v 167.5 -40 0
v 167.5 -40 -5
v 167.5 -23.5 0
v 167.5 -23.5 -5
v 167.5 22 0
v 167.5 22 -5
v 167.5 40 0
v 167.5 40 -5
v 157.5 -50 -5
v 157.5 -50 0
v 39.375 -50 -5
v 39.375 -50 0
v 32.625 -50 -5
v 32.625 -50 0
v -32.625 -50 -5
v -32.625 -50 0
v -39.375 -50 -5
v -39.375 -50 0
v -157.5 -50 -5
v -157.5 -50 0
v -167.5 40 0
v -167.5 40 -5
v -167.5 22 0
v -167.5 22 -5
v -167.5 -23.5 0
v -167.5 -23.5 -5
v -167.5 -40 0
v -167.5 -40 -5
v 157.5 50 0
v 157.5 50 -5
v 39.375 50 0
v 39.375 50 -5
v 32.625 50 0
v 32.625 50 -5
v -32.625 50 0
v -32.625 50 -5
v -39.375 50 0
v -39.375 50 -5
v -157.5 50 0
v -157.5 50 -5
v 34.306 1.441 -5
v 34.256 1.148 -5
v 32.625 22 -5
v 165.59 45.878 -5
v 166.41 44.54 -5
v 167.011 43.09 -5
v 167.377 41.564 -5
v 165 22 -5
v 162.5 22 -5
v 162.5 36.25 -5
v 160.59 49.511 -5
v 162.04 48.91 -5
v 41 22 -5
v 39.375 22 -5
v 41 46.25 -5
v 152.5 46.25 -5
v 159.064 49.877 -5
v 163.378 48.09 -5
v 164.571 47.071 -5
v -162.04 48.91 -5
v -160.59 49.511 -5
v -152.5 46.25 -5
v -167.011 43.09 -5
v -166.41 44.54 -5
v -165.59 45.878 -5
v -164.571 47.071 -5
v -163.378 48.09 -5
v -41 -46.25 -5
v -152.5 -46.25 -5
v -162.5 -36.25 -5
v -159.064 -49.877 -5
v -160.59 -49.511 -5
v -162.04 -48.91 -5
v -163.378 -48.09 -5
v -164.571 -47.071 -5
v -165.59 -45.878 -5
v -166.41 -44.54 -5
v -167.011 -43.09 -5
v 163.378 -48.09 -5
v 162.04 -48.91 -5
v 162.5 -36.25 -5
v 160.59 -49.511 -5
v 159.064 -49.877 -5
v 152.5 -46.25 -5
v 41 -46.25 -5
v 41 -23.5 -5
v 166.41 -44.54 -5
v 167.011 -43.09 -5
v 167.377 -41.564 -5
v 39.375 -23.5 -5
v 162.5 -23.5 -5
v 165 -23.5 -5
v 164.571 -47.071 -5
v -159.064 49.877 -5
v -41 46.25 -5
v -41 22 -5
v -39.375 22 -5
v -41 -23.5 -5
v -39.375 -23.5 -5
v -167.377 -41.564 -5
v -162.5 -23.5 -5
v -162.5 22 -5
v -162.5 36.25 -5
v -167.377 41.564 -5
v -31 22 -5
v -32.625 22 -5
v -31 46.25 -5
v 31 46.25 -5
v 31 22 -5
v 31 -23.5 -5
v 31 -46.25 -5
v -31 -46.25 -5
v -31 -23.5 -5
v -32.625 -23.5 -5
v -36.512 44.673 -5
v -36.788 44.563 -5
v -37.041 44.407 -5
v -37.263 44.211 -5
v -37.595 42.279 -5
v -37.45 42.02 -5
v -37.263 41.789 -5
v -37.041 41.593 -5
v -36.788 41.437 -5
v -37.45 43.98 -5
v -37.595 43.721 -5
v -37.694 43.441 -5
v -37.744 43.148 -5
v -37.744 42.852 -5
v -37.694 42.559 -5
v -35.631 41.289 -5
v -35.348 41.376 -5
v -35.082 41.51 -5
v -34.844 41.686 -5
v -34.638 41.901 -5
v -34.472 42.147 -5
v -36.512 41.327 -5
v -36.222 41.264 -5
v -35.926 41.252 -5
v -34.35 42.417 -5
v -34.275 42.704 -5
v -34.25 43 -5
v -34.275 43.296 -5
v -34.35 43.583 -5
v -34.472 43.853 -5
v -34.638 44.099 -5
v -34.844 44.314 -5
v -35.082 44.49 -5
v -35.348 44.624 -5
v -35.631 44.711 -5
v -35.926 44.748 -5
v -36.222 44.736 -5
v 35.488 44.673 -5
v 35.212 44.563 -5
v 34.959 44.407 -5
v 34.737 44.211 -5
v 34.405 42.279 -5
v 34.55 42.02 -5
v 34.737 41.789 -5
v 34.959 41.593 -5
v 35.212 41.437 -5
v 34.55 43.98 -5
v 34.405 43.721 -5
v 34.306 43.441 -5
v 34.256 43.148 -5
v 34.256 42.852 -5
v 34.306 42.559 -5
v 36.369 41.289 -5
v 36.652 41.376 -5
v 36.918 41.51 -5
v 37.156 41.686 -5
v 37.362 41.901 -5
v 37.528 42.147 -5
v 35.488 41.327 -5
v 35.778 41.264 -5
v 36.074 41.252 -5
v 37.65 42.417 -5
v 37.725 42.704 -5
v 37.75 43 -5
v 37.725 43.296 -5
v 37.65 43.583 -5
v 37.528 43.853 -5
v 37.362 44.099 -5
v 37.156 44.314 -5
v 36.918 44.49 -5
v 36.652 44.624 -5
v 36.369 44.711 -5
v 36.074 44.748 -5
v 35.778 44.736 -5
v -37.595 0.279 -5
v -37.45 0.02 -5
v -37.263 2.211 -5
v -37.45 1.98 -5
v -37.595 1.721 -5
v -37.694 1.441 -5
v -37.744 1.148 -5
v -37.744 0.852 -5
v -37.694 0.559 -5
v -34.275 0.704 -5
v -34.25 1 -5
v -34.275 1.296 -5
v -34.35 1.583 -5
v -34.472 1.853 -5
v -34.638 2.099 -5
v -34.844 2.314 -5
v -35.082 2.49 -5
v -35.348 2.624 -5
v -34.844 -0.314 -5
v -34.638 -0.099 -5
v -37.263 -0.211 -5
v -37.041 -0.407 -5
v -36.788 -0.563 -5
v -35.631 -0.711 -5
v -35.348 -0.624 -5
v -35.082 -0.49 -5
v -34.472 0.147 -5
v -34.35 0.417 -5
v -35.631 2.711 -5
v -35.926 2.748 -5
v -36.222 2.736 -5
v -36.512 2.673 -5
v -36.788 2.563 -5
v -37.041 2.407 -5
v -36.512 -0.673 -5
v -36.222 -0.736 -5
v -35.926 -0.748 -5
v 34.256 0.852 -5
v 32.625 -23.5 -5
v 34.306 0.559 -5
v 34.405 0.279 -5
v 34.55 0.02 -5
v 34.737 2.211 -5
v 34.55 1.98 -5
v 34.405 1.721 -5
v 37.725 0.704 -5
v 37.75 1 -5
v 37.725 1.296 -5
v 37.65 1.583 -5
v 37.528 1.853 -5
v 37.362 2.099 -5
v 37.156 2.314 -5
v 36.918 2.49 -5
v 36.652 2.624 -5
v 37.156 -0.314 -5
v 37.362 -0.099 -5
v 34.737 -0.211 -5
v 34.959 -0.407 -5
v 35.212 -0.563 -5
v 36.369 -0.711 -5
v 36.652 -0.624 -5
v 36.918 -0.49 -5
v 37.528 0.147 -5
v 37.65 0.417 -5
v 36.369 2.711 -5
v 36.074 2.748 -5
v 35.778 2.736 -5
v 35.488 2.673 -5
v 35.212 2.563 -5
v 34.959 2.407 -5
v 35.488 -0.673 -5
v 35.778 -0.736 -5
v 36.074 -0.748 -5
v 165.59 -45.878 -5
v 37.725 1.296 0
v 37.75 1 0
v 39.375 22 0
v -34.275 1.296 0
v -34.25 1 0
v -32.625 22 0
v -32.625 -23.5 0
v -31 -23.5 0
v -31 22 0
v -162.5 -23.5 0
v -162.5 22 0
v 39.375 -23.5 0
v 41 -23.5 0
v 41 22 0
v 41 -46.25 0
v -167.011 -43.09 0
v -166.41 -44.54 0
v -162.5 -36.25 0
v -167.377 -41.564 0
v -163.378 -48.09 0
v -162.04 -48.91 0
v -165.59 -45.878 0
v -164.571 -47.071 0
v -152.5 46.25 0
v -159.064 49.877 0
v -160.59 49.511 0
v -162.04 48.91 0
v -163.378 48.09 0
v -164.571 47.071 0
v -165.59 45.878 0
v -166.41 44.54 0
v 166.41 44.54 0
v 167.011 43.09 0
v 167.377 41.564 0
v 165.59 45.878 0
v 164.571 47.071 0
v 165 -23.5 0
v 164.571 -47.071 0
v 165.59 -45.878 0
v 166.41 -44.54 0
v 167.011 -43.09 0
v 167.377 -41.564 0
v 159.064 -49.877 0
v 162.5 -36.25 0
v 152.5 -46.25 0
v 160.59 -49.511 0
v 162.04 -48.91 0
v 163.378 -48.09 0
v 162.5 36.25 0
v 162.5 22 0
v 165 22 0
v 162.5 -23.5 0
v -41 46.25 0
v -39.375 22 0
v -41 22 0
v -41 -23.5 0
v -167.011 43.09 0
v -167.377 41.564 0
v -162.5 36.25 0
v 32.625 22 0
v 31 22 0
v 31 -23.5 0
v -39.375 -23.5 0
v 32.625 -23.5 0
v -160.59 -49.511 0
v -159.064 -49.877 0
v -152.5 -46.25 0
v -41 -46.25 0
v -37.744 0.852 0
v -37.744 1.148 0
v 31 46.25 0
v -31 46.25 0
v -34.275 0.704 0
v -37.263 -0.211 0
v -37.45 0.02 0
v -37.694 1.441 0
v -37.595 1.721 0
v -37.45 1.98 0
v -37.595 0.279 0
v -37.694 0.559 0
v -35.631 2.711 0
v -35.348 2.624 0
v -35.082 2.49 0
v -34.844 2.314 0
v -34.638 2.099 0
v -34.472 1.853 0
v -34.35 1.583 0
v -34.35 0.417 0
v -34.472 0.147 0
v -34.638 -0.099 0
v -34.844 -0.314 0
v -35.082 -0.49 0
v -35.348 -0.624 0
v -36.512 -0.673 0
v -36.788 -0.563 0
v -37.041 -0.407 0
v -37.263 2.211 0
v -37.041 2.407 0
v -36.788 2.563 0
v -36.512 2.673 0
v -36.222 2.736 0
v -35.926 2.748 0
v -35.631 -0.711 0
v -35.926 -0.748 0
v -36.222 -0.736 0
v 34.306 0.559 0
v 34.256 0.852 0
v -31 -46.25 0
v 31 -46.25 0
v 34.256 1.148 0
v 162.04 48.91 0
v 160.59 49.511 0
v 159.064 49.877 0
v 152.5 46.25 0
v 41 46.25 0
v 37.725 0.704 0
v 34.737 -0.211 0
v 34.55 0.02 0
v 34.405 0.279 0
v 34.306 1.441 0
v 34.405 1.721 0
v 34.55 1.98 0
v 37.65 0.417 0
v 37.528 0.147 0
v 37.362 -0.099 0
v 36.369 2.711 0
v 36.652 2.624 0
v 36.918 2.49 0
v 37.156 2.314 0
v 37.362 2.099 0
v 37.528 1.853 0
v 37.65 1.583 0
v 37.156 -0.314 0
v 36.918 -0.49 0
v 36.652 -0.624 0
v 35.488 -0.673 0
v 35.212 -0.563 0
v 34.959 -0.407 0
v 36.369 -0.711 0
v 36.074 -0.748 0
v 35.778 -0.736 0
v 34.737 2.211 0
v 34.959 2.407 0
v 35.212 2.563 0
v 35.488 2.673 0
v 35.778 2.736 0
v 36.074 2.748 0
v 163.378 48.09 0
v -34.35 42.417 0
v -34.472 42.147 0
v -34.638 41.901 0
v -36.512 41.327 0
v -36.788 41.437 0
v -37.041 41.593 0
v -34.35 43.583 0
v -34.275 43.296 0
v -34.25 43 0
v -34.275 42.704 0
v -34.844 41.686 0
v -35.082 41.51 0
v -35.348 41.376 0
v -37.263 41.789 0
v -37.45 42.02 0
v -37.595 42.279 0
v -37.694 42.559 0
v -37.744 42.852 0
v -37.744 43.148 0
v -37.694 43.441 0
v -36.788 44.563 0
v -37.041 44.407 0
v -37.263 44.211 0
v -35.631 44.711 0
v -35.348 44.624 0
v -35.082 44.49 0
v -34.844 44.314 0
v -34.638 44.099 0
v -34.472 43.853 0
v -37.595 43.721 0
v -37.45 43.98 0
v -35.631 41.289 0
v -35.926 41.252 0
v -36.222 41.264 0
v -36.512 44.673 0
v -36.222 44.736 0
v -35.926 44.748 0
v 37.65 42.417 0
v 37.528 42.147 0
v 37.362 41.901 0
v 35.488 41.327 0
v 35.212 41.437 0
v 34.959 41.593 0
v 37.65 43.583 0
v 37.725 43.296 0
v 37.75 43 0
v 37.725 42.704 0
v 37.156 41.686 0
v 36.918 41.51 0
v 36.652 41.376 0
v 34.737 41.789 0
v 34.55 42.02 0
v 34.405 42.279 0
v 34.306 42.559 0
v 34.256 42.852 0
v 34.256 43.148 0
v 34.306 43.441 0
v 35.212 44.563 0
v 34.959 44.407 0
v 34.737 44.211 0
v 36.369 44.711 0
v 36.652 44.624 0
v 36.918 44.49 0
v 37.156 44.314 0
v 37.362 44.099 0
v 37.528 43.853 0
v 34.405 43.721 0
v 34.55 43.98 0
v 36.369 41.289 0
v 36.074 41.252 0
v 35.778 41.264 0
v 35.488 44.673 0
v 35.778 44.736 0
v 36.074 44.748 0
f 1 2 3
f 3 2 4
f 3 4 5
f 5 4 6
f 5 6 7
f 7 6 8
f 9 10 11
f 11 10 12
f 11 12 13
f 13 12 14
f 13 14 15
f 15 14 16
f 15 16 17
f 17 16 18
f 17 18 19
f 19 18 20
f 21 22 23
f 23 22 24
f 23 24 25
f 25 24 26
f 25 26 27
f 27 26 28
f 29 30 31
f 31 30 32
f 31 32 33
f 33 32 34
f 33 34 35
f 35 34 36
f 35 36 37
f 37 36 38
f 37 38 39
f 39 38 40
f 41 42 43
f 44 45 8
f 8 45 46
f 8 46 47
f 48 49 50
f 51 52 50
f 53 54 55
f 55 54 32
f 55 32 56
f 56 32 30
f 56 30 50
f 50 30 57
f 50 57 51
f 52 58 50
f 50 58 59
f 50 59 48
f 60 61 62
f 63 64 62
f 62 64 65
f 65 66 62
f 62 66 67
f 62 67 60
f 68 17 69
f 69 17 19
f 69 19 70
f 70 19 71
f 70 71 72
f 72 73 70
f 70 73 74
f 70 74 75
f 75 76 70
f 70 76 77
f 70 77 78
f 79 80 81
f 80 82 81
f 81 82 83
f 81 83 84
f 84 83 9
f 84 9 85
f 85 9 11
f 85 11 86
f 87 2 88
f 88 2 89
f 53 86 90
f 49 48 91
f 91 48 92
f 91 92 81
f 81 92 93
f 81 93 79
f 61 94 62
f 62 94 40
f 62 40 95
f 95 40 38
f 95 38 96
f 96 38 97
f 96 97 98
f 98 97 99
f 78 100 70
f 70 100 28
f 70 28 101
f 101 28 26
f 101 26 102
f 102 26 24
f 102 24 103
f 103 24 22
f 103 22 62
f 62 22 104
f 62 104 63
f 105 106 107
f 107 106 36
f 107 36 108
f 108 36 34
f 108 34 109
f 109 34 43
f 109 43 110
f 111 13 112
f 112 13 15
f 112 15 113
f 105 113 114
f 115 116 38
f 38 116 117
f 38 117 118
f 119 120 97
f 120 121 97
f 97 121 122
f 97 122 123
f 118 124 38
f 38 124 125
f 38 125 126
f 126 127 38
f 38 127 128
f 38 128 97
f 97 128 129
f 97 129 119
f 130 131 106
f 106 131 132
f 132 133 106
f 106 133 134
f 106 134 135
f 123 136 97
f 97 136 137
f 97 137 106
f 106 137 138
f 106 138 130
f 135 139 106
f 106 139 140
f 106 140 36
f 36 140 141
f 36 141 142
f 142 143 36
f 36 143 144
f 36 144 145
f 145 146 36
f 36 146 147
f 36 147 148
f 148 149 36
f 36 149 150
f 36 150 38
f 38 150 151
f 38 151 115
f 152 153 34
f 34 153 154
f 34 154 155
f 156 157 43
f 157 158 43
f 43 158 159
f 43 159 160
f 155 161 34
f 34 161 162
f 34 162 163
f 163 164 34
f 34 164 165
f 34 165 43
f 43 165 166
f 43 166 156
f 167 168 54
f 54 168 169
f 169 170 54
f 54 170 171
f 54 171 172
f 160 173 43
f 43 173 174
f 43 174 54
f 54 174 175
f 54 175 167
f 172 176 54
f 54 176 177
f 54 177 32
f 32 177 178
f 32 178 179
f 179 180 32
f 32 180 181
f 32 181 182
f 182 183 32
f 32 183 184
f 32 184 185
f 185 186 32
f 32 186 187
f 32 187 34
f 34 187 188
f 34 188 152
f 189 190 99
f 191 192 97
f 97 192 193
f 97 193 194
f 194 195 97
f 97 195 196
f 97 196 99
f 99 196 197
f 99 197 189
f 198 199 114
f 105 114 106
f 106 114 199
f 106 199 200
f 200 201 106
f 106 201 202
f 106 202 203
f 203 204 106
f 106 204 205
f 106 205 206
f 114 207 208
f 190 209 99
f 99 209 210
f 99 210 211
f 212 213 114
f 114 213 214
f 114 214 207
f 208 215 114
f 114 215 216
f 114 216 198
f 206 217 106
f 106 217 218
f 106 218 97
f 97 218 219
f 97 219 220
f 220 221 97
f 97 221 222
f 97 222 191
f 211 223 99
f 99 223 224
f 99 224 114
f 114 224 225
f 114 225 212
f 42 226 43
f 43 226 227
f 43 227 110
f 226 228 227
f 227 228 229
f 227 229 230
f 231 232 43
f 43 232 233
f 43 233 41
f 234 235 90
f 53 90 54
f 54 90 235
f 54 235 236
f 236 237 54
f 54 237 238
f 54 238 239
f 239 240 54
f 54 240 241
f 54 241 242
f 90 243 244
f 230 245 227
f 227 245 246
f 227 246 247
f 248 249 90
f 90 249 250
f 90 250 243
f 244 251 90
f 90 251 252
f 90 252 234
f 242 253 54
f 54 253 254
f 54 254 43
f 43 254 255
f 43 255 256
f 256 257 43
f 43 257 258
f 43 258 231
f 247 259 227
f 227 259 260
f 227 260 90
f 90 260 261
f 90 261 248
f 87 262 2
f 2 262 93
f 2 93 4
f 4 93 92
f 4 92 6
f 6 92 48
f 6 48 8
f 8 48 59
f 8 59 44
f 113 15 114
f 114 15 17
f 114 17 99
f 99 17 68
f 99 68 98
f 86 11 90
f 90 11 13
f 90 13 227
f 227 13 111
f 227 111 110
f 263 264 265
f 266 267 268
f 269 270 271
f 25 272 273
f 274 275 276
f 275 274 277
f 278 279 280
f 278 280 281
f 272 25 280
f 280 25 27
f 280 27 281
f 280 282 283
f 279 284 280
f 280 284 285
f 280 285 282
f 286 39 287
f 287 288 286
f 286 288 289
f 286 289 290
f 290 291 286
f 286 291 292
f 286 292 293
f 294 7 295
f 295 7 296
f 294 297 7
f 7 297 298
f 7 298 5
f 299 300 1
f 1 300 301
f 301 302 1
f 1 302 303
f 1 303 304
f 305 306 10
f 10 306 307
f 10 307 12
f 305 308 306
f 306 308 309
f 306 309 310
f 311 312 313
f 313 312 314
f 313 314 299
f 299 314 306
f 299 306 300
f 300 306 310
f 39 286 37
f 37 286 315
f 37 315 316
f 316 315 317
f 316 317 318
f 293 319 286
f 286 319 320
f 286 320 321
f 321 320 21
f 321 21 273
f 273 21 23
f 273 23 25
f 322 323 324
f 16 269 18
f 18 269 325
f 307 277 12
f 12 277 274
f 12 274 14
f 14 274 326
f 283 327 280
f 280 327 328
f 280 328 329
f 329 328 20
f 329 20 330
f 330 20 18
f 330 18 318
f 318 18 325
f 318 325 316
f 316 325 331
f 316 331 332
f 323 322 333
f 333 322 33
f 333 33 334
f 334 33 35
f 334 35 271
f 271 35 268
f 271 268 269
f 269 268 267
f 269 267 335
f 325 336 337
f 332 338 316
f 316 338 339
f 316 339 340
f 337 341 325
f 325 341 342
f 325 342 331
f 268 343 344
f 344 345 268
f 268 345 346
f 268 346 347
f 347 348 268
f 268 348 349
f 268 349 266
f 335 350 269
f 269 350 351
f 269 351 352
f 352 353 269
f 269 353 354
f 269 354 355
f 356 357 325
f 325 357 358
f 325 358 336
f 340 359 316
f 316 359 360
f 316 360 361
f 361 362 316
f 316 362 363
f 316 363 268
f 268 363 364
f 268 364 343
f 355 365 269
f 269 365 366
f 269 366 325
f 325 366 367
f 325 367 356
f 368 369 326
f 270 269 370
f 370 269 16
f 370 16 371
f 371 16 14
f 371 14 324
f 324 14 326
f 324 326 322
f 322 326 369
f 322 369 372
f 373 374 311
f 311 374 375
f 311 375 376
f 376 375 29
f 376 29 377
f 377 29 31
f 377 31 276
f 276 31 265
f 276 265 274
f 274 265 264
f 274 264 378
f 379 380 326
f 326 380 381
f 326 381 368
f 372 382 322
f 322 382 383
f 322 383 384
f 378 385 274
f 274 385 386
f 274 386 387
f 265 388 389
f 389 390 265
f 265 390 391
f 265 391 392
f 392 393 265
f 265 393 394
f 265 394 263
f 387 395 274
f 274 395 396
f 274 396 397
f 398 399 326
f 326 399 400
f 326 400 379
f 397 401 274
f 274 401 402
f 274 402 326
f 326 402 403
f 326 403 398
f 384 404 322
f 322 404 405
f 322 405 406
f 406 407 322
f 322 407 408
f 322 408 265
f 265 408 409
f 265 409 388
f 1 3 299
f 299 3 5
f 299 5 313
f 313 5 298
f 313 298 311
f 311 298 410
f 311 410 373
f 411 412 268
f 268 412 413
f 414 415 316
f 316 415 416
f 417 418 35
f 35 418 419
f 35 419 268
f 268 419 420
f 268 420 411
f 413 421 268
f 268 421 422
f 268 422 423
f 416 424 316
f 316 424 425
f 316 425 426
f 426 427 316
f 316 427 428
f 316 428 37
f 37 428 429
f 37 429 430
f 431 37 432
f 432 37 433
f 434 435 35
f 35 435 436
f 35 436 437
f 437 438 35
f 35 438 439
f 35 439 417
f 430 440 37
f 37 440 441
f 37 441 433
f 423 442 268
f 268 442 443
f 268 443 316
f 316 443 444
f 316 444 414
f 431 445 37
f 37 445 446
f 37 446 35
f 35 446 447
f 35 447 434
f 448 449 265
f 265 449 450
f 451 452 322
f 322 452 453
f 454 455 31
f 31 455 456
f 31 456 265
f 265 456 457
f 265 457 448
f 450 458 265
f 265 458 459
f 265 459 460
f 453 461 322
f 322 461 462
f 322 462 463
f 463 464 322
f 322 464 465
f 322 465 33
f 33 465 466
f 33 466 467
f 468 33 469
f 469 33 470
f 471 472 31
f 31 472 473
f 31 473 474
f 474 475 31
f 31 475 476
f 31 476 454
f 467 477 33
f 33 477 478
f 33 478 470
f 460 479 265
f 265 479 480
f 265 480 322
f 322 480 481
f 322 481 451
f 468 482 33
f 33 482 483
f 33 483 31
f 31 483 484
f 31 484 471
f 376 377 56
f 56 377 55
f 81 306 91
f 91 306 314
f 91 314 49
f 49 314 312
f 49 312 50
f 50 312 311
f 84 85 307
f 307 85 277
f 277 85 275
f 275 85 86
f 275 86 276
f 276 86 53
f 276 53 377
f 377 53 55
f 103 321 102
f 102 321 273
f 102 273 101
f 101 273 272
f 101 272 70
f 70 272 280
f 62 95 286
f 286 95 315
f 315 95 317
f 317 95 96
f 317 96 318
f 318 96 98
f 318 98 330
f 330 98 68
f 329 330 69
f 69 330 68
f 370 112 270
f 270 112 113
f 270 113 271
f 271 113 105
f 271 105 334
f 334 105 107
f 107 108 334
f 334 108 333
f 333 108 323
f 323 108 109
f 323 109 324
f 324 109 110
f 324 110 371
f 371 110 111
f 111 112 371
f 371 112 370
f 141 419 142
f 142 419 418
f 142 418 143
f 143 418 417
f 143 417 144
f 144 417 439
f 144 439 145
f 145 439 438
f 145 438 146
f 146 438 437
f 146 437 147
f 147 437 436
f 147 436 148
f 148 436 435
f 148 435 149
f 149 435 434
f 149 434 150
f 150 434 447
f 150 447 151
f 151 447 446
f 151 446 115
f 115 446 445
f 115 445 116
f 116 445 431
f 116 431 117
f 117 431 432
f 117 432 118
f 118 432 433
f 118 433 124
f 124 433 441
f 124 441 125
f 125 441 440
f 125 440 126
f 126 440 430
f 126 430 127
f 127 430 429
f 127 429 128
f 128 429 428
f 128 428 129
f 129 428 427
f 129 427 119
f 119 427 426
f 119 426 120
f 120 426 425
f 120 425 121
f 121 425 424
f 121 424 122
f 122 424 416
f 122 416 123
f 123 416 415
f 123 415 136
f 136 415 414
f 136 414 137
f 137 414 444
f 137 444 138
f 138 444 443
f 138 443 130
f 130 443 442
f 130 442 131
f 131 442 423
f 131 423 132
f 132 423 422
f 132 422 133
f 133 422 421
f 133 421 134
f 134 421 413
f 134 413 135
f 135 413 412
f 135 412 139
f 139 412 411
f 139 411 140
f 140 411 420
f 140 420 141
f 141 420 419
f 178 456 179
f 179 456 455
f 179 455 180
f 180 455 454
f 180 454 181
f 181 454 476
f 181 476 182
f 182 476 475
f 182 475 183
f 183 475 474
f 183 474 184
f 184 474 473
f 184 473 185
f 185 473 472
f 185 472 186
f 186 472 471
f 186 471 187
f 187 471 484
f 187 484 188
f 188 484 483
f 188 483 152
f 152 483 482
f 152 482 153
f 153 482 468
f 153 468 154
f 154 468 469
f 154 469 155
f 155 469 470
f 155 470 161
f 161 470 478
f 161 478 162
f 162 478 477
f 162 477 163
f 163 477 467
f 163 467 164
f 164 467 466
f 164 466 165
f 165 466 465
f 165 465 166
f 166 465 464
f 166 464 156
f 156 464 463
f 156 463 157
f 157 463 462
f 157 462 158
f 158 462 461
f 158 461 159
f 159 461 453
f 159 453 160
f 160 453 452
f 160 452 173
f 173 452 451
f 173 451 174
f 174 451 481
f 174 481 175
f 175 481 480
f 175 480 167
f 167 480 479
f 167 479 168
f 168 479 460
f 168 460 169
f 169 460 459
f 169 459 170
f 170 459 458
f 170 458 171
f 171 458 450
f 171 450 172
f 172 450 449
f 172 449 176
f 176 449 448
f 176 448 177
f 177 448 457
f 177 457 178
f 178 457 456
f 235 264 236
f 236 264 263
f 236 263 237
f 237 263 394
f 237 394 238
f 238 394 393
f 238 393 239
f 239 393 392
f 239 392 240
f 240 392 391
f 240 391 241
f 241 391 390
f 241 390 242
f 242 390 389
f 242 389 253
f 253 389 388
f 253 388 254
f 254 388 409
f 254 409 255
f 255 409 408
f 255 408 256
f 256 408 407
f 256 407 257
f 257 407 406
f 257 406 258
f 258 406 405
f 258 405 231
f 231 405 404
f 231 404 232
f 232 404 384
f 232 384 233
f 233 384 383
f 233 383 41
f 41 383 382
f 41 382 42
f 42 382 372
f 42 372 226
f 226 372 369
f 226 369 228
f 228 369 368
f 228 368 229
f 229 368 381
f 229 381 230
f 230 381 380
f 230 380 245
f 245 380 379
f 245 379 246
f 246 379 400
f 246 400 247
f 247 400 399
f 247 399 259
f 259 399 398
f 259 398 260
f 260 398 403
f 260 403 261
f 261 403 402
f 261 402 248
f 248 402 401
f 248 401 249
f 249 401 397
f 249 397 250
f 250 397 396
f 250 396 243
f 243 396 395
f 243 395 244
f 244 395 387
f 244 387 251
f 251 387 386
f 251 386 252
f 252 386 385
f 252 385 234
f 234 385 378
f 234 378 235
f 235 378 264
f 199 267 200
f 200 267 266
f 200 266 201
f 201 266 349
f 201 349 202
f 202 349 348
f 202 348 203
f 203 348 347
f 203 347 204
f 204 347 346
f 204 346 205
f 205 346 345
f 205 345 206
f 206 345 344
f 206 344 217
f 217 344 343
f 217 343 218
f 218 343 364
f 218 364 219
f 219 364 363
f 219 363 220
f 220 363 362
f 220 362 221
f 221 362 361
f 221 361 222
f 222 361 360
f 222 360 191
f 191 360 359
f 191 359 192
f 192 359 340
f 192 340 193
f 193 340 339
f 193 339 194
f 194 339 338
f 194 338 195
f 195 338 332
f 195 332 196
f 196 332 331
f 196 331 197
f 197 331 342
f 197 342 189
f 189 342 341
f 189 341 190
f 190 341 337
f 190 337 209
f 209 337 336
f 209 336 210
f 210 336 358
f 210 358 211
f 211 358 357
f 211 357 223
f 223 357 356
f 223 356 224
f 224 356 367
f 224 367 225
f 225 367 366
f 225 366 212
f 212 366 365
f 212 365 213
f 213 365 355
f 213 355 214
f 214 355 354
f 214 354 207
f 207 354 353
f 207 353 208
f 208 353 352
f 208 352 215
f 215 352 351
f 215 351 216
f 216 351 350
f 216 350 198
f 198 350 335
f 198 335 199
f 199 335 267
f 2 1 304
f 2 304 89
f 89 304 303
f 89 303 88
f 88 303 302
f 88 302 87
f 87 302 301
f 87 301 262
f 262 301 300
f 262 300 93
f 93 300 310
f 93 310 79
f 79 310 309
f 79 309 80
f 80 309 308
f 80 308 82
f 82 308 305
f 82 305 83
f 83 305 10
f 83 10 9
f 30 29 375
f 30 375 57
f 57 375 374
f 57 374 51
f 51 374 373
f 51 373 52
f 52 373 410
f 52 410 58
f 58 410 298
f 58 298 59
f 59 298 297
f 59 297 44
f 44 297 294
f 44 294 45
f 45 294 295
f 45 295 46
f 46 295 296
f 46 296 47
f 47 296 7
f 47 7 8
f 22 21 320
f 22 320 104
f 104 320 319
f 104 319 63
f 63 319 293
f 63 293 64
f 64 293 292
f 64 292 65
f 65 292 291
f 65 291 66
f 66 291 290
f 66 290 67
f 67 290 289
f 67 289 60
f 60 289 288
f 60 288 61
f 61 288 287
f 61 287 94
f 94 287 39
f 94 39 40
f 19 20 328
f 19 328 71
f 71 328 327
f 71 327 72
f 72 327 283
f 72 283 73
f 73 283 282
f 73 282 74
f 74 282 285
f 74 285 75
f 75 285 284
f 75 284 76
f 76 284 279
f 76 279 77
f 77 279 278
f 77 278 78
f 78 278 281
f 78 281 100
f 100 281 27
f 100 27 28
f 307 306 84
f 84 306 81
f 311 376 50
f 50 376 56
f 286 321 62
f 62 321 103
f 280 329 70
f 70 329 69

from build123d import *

# Parameters (mm, degrees)
SKETCH1_W           = 335
SKETCH1_H           = 100
SKETCH1_R           = 1.75
SKETCH1_W_2         = 62
SKETCH1_H_2         = 92.5
SKETCH1_W_3         = 121.5
BOSS_EXTRUDE1_DEPTH = 5
FILLET1_R           = 10
CHAMFER1_SIZE       = 10


with BuildPart() as part:
    # Sketch1 → Boss-Extrude1 (new body)
    with BuildSketch(Plane.XY):
        Rectangle(SKETCH1_W, SKETCH1_H)
        with Locations((-36, 43)):
            Circle(SKETCH1_R, mode=Mode.SUBTRACT)
        with Locations((36, 43)):
            Circle(SKETCH1_R, mode=Mode.SUBTRACT)
        with Locations((36, 1)):
            Circle(SKETCH1_R, mode=Mode.SUBTRACT)
        with Locations((-36, 1)):
            Circle(SKETCH1_R, mode=Mode.SUBTRACT)
        Rectangle(SKETCH1_W_2, SKETCH1_H_2, mode=Mode.SUBTRACT)
        with Locations((-101.75, 0)):
            Rectangle(SKETCH1_W_3, SKETCH1_H_2, mode=Mode.SUBTRACT)
        with Locations((101.75, 0)):
            Rectangle(SKETCH1_W_3, SKETCH1_H_2, mode=Mode.SUBTRACT)
    extrude(amount=-BOSS_EXTRUDE1_DEPTH)

    # Fillet1
    fillet1_edges = [part.edges().sort_by_distance(p)[0] for p in [
        (167.5, -50, -2.5),
        (-167.5, -50, -2.5),
        (-167.5, 50, -2.5),
        (167.5, 50, -2.5),
    ]]
    fillet(fillet1_edges, radius=FILLET1_R)

    # Chamfer1
    chamfer1_edges = [part.edges().sort_by_distance(p)[0] for p in [
        (162.5, 46.25, -2.5),
        (162.5, -46.25, -2.5),
        (-162.5, -46.25, -2.5),
        (-162.5, 46.25, -2.5),
    ]]
    chamfer(chamfer1_edges, length=CHAMFER1_SIZE)


solid = part.part
